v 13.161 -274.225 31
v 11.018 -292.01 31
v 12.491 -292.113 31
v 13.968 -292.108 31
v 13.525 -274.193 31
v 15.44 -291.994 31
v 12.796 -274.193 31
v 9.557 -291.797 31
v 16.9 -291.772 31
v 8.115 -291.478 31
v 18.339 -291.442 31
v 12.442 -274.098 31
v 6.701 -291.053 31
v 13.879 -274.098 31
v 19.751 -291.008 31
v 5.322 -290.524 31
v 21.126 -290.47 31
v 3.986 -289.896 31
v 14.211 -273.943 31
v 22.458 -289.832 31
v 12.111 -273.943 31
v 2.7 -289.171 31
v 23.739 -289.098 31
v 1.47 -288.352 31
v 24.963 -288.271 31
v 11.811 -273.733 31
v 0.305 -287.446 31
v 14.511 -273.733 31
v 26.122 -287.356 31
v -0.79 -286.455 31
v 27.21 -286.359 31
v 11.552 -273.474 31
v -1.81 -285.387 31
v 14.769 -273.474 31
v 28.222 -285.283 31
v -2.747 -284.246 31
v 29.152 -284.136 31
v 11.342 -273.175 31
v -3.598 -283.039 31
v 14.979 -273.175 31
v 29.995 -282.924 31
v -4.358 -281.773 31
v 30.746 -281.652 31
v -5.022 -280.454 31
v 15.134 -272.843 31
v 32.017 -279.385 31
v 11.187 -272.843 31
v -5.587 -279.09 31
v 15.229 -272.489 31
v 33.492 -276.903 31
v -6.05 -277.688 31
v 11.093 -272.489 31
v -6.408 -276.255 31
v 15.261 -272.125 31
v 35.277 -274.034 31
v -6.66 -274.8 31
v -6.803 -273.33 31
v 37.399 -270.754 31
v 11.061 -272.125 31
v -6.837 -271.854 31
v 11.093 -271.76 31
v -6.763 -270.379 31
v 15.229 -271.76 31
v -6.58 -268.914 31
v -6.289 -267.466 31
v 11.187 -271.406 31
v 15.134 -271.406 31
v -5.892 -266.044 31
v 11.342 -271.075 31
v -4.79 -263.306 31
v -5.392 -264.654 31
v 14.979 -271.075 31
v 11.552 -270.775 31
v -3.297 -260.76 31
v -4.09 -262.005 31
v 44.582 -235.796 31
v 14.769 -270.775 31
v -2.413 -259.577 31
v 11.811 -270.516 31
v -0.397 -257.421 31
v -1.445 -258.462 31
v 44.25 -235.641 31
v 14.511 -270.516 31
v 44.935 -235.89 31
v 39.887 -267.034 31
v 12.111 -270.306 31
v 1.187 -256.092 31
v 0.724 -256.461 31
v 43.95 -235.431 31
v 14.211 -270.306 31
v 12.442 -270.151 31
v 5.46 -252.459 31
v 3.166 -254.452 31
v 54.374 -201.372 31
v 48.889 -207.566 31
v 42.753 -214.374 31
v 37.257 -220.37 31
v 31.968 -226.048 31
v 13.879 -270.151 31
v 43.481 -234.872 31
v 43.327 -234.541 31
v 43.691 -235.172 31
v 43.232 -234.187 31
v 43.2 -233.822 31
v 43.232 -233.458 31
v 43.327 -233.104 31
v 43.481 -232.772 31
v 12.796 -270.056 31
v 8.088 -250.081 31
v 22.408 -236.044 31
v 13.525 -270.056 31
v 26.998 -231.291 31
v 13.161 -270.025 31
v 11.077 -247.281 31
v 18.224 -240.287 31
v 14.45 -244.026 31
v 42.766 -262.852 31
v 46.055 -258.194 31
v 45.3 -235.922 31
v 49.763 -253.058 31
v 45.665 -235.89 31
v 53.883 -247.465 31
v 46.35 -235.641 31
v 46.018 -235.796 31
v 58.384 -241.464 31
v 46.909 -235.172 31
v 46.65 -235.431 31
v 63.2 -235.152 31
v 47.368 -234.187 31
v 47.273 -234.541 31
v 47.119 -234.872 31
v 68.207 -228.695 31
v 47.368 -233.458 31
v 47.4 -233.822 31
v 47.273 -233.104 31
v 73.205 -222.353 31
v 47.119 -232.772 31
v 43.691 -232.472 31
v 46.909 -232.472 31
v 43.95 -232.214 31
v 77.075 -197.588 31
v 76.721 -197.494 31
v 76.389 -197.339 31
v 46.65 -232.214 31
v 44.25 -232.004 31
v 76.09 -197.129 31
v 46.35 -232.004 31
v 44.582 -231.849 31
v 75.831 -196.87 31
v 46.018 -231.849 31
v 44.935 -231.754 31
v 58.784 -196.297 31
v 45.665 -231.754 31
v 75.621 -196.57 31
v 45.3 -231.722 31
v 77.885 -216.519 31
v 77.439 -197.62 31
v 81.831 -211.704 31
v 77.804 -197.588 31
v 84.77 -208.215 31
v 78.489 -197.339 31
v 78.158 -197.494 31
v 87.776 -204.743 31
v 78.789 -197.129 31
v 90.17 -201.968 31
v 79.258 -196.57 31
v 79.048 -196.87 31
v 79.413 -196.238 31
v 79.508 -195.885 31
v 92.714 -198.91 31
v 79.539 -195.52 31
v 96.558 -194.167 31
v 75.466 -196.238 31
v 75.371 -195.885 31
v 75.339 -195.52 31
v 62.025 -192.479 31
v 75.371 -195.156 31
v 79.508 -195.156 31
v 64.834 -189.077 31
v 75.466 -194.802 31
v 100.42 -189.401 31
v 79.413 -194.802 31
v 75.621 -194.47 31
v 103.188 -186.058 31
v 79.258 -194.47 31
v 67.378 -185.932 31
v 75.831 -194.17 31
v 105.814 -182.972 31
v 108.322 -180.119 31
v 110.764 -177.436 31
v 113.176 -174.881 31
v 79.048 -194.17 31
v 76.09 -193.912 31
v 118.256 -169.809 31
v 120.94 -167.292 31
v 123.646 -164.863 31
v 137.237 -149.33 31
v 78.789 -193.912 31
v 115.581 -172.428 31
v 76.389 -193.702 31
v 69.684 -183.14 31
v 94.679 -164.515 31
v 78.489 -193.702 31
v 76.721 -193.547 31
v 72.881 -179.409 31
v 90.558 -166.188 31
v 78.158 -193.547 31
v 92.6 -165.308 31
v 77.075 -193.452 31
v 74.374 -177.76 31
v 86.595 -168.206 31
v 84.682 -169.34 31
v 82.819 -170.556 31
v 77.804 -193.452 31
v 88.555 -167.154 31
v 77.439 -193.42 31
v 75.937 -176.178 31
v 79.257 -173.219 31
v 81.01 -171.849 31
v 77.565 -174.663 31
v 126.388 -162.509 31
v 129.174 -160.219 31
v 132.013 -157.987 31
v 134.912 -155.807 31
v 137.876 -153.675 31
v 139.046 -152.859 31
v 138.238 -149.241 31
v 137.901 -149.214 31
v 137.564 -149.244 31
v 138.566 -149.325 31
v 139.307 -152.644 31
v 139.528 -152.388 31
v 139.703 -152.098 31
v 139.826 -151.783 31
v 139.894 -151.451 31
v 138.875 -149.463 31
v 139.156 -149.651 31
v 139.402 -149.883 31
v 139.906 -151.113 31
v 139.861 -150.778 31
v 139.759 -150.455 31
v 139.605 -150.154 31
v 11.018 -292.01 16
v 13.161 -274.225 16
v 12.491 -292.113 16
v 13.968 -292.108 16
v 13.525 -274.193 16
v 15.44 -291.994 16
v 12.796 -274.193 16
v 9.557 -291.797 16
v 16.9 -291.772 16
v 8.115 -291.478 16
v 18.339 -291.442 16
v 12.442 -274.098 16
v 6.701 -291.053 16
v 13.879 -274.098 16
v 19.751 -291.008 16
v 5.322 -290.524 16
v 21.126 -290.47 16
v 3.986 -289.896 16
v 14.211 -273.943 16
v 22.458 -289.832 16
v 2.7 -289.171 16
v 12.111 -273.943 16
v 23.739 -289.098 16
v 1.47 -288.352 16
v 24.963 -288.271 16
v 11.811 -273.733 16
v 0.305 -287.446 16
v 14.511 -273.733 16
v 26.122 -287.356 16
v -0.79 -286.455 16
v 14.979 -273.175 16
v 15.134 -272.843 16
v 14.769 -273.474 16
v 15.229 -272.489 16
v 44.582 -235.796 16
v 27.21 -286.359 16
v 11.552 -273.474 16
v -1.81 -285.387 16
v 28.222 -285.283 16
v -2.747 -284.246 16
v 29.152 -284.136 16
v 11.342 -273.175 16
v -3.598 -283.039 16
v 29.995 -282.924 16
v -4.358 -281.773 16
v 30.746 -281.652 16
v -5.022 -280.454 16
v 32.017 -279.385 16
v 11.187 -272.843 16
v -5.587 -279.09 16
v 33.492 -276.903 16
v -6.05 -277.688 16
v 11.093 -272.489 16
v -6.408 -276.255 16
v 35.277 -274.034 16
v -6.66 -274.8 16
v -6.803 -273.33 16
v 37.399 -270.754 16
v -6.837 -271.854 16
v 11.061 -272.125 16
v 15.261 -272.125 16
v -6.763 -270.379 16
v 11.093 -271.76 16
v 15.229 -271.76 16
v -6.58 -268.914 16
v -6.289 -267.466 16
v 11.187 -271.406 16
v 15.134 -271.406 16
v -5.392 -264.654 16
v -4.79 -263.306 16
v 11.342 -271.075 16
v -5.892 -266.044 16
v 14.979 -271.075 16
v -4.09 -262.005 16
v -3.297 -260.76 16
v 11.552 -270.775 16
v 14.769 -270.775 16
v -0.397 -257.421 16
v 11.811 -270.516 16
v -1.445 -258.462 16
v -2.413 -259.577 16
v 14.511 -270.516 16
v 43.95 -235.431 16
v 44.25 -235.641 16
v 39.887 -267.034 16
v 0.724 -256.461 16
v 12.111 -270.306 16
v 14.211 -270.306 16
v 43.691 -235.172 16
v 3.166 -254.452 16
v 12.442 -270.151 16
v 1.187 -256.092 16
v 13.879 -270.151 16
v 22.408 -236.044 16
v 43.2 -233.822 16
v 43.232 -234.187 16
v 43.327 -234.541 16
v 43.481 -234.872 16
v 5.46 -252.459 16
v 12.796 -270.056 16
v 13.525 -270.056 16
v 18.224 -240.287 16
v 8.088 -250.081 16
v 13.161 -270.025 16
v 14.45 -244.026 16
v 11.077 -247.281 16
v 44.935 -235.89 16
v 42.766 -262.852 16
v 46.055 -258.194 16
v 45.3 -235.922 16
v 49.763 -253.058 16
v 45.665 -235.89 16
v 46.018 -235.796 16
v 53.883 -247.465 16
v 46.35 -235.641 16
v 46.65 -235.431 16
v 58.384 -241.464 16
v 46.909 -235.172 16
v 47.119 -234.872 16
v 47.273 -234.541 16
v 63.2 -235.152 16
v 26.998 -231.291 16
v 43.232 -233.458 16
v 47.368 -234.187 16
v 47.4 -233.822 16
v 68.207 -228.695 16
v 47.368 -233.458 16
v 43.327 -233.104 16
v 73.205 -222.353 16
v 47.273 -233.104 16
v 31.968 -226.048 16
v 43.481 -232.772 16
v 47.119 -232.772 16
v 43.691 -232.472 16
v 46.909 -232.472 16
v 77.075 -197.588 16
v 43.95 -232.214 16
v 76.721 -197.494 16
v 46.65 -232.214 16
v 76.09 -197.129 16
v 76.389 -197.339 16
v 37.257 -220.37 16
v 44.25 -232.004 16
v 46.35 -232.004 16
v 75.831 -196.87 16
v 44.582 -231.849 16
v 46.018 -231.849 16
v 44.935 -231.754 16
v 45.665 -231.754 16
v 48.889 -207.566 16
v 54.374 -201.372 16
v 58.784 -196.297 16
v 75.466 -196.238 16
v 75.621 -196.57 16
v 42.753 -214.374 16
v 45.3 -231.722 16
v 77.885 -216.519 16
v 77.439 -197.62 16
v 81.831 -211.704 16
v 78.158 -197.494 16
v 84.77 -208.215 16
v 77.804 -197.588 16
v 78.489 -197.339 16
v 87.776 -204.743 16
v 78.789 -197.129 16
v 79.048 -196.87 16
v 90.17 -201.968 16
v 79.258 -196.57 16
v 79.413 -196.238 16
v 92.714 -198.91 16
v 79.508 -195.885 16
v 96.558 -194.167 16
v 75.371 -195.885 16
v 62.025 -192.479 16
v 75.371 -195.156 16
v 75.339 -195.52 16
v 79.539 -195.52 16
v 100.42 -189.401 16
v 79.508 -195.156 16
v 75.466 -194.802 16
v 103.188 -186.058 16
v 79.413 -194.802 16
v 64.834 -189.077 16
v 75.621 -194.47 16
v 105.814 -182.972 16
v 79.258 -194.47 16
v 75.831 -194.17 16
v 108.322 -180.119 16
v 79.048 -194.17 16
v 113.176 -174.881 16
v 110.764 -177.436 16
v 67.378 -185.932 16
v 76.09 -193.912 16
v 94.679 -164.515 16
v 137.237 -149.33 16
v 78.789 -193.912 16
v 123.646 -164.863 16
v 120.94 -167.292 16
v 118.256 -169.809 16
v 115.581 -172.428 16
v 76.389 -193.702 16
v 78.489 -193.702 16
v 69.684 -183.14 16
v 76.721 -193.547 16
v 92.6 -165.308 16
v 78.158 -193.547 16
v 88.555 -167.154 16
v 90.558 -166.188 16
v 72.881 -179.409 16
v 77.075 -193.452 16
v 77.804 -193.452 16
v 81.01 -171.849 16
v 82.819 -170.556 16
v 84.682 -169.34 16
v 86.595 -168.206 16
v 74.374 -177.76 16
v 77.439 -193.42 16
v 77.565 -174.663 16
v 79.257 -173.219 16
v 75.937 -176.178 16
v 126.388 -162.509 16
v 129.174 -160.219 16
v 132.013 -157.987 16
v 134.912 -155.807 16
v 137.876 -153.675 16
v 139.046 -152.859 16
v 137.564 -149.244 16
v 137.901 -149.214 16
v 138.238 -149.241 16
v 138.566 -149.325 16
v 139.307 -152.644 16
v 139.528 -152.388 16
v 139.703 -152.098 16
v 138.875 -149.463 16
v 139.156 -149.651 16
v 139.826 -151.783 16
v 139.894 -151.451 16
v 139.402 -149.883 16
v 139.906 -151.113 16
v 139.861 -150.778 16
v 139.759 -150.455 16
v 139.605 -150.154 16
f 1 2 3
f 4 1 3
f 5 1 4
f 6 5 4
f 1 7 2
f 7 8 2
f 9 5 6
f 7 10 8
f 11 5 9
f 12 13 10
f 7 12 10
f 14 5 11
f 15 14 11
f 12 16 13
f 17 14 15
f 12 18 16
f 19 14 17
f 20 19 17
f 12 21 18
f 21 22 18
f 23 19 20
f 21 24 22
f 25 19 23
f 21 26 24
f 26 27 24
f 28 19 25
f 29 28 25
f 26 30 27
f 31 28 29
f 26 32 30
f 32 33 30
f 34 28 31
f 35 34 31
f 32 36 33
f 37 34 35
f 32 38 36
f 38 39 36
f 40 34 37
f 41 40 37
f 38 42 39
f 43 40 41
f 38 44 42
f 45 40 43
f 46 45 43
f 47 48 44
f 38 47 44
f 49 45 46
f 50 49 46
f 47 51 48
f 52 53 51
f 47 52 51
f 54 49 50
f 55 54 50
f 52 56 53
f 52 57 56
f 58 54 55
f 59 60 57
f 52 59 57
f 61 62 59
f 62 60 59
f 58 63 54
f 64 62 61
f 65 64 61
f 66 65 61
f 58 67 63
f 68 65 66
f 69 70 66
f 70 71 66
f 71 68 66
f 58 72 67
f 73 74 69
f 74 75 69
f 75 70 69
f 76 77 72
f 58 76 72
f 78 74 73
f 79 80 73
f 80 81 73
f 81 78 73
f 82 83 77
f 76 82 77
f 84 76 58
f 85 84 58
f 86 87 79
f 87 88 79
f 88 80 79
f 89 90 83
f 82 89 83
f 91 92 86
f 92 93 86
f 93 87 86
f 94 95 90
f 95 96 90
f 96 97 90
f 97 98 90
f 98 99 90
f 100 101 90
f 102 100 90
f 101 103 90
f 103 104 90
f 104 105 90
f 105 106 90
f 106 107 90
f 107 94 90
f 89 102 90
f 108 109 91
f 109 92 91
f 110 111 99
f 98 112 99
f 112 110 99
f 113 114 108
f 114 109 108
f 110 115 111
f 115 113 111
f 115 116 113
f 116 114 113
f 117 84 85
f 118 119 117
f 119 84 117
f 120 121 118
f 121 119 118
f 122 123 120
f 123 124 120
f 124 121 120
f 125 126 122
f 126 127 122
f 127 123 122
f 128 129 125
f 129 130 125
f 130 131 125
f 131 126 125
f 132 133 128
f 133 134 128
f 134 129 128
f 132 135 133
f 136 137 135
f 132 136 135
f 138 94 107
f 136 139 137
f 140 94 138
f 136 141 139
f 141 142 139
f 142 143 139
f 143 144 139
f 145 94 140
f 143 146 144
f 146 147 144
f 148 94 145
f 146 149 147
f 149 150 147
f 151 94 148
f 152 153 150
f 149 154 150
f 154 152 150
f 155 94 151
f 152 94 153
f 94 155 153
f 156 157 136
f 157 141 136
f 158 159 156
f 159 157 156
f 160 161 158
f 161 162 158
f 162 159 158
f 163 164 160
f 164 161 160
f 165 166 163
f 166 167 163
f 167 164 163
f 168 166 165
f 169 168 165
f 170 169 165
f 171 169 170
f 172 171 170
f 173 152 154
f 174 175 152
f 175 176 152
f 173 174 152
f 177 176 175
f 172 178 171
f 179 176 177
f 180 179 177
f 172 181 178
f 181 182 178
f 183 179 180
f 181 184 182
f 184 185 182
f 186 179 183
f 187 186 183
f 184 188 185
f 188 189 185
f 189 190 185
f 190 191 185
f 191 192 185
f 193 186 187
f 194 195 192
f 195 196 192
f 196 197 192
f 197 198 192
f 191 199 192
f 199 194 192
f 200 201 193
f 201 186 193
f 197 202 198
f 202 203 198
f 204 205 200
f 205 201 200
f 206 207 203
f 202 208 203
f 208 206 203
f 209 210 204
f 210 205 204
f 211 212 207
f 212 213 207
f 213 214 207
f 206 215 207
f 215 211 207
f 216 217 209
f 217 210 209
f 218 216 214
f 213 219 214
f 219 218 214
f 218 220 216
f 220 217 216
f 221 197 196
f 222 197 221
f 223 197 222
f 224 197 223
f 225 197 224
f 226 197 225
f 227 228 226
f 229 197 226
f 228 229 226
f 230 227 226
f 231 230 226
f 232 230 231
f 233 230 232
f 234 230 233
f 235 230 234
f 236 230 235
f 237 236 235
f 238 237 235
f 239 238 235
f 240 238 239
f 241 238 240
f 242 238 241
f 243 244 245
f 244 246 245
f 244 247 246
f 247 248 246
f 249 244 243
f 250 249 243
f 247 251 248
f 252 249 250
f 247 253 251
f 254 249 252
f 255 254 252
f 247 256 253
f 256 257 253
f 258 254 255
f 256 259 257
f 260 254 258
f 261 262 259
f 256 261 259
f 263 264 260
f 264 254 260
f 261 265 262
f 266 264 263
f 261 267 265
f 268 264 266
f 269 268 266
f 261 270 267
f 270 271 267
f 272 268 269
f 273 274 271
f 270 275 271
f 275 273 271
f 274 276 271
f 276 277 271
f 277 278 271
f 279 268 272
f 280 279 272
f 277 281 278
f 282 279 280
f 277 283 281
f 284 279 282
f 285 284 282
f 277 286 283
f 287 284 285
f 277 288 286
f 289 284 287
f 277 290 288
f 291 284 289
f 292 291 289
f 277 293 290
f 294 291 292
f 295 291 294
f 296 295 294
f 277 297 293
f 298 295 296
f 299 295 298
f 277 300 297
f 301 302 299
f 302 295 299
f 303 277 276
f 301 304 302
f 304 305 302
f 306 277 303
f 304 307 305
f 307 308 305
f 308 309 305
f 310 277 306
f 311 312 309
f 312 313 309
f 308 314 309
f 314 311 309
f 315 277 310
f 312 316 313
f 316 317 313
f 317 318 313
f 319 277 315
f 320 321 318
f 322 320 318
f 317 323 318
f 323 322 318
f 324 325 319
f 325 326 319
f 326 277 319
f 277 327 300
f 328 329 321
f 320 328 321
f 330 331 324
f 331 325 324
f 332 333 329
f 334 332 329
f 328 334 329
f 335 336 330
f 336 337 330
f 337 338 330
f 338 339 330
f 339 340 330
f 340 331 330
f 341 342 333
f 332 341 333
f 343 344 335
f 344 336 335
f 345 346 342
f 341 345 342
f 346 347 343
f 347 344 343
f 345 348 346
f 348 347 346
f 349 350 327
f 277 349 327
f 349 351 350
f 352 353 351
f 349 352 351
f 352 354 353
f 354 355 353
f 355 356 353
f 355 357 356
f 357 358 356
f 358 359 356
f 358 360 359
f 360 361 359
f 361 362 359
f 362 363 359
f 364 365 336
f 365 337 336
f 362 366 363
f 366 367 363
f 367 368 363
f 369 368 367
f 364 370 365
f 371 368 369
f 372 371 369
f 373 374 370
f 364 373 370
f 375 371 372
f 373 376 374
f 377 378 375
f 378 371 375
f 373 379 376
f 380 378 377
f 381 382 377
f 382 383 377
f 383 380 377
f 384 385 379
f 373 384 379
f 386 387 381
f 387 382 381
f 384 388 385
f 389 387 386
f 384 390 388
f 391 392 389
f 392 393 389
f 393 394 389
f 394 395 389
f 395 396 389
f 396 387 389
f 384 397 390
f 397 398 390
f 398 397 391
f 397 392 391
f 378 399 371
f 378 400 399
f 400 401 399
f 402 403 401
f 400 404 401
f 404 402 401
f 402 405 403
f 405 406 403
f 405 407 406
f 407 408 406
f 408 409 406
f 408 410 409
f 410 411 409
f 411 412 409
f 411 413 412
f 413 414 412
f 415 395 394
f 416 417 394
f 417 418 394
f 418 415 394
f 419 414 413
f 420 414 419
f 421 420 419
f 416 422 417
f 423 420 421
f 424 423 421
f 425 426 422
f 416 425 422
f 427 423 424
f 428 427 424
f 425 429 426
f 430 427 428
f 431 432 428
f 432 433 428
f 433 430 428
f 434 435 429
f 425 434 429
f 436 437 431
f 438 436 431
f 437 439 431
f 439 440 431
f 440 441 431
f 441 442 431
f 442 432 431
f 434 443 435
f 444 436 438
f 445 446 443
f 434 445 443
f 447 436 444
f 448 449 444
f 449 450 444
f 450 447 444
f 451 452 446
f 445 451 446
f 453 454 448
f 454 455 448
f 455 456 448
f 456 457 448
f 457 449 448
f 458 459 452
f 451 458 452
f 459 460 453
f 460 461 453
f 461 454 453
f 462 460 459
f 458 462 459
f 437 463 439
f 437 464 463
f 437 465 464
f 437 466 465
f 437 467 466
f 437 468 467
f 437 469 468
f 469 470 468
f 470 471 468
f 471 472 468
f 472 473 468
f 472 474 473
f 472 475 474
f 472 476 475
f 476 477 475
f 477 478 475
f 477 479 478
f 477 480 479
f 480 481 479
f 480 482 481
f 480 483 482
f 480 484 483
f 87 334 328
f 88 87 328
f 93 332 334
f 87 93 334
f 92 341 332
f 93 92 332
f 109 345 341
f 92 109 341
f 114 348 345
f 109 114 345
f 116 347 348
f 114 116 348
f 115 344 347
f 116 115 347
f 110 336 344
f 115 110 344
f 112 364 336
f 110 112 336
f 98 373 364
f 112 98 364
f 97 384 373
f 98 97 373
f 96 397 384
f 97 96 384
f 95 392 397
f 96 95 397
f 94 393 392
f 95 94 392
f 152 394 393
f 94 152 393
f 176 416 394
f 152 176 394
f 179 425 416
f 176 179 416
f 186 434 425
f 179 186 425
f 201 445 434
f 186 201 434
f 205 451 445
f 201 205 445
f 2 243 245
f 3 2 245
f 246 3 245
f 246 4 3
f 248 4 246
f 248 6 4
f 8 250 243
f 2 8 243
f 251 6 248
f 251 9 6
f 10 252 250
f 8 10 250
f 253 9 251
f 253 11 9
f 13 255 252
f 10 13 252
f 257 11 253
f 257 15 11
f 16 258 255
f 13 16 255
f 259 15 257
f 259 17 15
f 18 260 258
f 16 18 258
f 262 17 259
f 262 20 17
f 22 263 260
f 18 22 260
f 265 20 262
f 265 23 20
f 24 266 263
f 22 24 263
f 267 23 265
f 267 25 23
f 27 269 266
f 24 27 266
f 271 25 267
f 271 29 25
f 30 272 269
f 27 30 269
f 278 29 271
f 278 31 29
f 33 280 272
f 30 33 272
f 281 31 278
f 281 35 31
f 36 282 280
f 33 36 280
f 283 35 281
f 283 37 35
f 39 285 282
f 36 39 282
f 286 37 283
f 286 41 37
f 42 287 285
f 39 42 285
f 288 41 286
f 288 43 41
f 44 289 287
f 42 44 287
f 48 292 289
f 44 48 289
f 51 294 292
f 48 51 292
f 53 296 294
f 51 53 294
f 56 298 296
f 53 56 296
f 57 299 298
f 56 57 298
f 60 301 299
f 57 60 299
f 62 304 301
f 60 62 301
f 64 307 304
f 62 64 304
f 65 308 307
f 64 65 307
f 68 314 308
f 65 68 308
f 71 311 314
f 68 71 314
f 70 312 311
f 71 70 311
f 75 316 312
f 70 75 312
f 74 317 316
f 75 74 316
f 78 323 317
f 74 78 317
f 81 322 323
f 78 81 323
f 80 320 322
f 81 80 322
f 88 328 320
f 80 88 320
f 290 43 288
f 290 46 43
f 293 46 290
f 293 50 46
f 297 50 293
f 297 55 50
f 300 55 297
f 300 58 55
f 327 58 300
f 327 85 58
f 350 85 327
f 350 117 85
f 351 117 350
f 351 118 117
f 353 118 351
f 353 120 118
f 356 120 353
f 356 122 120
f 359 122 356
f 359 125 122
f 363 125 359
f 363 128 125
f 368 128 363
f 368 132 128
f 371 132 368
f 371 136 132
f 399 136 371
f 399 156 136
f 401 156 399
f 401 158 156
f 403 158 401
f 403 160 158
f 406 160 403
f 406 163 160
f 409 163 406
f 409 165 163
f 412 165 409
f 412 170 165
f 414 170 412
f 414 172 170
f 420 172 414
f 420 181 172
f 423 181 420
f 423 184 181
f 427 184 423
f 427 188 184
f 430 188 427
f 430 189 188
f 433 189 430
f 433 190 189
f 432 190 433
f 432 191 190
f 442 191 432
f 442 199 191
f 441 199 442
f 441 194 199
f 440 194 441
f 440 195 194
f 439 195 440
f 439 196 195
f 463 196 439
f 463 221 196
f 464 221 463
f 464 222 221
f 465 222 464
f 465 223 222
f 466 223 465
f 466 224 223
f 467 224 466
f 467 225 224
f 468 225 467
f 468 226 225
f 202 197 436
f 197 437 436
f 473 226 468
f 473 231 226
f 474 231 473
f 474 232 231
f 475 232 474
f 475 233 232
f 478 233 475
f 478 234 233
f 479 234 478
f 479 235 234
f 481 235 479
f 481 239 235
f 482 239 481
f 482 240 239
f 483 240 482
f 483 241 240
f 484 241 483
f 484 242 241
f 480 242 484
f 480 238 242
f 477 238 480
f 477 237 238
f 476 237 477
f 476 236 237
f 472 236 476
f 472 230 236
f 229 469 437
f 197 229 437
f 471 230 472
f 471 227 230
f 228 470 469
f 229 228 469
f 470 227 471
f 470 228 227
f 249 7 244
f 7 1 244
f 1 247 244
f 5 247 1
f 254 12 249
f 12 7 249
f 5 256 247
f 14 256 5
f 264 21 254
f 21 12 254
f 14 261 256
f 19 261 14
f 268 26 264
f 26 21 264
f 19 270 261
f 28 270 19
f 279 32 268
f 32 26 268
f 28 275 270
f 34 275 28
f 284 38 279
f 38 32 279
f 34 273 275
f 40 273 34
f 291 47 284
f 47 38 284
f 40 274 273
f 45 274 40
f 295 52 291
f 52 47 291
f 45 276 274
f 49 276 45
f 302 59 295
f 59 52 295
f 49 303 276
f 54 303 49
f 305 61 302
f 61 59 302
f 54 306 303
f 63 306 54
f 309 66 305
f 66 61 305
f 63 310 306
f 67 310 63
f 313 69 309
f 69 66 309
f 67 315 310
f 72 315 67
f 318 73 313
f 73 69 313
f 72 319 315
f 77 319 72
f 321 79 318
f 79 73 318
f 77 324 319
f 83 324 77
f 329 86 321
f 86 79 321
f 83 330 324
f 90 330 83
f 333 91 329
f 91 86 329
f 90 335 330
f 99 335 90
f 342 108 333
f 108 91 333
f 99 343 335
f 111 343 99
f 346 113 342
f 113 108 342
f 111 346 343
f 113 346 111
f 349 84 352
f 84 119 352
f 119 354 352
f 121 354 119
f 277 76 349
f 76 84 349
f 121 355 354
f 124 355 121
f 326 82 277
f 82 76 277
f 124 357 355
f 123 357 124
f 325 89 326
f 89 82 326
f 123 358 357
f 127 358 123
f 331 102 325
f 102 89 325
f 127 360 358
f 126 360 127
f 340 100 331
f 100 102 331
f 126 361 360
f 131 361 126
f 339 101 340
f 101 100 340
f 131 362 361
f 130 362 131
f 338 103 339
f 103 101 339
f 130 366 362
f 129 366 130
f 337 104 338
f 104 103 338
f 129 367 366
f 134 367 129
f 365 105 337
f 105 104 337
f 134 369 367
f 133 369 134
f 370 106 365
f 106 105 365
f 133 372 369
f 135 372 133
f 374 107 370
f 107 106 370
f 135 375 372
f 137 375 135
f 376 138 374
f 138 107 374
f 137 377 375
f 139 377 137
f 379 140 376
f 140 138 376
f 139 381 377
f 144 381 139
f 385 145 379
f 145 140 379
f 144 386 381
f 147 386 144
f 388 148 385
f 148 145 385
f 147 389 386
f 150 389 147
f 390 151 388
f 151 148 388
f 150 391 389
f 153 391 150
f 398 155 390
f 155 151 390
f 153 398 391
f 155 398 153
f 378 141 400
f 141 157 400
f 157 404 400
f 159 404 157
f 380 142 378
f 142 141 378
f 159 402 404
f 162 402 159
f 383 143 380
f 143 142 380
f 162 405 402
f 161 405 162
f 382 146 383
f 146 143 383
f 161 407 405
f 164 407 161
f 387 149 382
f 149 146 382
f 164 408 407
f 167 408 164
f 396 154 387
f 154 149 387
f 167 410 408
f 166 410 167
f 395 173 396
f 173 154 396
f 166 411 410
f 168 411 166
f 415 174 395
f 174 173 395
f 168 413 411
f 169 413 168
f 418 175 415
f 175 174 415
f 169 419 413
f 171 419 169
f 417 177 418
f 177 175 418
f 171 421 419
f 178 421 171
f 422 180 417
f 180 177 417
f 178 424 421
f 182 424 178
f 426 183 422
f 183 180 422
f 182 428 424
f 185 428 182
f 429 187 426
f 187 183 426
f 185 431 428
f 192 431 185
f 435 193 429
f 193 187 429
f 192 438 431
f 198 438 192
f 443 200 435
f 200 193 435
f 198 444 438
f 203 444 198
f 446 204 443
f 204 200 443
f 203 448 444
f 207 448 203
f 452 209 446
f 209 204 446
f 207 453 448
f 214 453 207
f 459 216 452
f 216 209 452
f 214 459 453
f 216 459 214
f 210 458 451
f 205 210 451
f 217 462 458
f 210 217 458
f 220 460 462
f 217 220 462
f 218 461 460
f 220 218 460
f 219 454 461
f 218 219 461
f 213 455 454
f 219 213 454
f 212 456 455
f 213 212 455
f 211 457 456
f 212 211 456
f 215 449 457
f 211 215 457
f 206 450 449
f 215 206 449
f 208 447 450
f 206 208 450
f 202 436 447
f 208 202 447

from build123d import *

# Parameters (mm, degrees)
SKETCH3_R           = 1.6
BOSS_EXTRUDE1_DEPTH = 15
CUT_EXTRUDE1_START  = -15
SKETCH4_R           = 1.6
CUT_EXTRUDE1_DEPTH  = 15
FILLET3_R           = 2
SKETCH5_R           = 2.1
CUT_EXTRUDE2_DEPTH  = 15
FILLET4_R           = 52


with BuildPart() as part:
    # Sketch3 → Boss-Extrude1 (new body)
    with BuildSketch(Plane.XY.offset(16)):
        with BuildLine():
            ThreePointArc((155.019115612, -142.985112199), (159.394881243, -97.849485606), (115.704809966, -109.996492831))
            add(Edge.make_bspline(
                [(115.704809966, -109.996492831), (101.94879758, -150.116707379), (78.178790791, -171.772825461), (58.717079478, -197.082387325), (16.356999542, -244.049515564), (0.72448619, -256.46124476)],
                knots=[0, 0, 0, 0, 0.619090324, 0.719090324, 1, 1, 1, 1], degree=3))
            ThreePointArc((0.72448619, -256.46124476), (0.304947846, -287.445485278), (30.74561606, -281.651963762))
            add(Edge.make_bspline(
                [(155.019115612, -142.985112199), (117.897123756, -163.498941991), (100.69762913, -190.668374405), (79.152067085, -214.229377889), (40.254225745, -264.101669257), (30.74561606, -281.651963762)],
                knots=[0, 0, 0, 0, 0.619090324, 0.719090324, 1, 1, 1, 1], degree=3))
        make_face()
        with Locations((135.218221977, -112.415707792)):
            Circle(SKETCH3_R, mode=Mode.SUBTRACT)
        with Locations((148.218221977, -112.415707792)):
            Circle(SKETCH3_R, mode=Mode.SUBTRACT)
        with Locations((148.218221977, -125.415707792)):
            Circle(SKETCH3_R, mode=Mode.SUBTRACT)
        with Locations((135.218221977, -125.415707792)):
            Circle(SKETCH3_R, mode=Mode.SUBTRACT)
        with Locations((77.439461008, -195.520152104)):
            Circle(SKETCH3_R, mode=Mode.SUBTRACT)
        with Locations((45.300080524, -233.82237426)):
            Circle(SKETCH3_R, mode=Mode.SUBTRACT)
        with Locations((13.16070004, -272.124596416)):
            Circle(SKETCH3_R, mode=Mode.SUBTRACT)
    extrude(amount=BOSS_EXTRUDE1_DEPTH)

    # Sketch4 → Cut-Extrude1 (cut)
    with BuildSketch(Plane.XY.offset(31).offset(CUT_EXTRUDE1_START)):
        with BuildLine():
            Line((146.658363589, -145.968341691), (155.019115612, -142.985112199))
            ThreePointArc((155.019115612, -142.985112199), (160.577014812, -98.900815017), (116.900921238, -107.068700404))
            ThreePointArc((116.900921238, -107.068700404), (116.260741116, -108.51538721), (115.704809966, -109.996492831))
            add(Edge.make_bspline(
                [(115.704809966, -109.996492831), (106.087737983, -138.045245656), (93.191817184, -155.597417592), (81.785181072, -169.115971326)],
                knots=[0, 0, 0, 0, 0.432817014, 0.432817014, 0.432817014, 0.432817014], degree=3))
            Line((81.785181072, -169.115971326), (146.658363589, -145.968341691))
        make_face()
        with Locations((135.218221977, -125.415707792)):
            Circle(SKETCH4_R, mode=Mode.SUBTRACT)
        with Locations((148.218221977, -125.415707792)):
            Circle(SKETCH4_R, mode=Mode.SUBTRACT)
        with Locations((135.218221977, -112.415707792)):
            Circle(SKETCH4_R, mode=Mode.SUBTRACT)
        with Locations((148.218221977, -112.415707792)):
            Circle(SKETCH4_R, mode=Mode.SUBTRACT)
    extrude(amount=CUT_EXTRUDE1_DEPTH, mode=Mode.SUBTRACT)

    # Fillet3
    fillet3_edges = [part.edges().sort_by_distance(p)[0] for p in [
        (155.019115612, -142.985112199, 23.5),
    ]]
    fillet(fillet3_edges, radius=FILLET3_R)

    # Sketch5 → Cut-Extrude2 (cut)
    with BuildSketch(Plane.XY.offset(31)):
        with Locations((77.439461008, -195.520152104)):
            Circle(SKETCH5_R)
        with Locations((45.300080524, -233.82237426)):
            Circle(SKETCH5_R)
        with Locations((13.16070004, -272.124596416)):
            Circle(SKETCH5_R)
    extrude(amount=-CUT_EXTRUDE2_DEPTH, mode=Mode.SUBTRACT)

    # Fillet4
    fillet4_edges = [part.edges().sort_by_distance(p)[0] for p in [
        (81.785181072, -169.115971326, 23.5),
    ]]
    fillet(fillet4_edges, radius=FILLET4_R)


solid = part.part
